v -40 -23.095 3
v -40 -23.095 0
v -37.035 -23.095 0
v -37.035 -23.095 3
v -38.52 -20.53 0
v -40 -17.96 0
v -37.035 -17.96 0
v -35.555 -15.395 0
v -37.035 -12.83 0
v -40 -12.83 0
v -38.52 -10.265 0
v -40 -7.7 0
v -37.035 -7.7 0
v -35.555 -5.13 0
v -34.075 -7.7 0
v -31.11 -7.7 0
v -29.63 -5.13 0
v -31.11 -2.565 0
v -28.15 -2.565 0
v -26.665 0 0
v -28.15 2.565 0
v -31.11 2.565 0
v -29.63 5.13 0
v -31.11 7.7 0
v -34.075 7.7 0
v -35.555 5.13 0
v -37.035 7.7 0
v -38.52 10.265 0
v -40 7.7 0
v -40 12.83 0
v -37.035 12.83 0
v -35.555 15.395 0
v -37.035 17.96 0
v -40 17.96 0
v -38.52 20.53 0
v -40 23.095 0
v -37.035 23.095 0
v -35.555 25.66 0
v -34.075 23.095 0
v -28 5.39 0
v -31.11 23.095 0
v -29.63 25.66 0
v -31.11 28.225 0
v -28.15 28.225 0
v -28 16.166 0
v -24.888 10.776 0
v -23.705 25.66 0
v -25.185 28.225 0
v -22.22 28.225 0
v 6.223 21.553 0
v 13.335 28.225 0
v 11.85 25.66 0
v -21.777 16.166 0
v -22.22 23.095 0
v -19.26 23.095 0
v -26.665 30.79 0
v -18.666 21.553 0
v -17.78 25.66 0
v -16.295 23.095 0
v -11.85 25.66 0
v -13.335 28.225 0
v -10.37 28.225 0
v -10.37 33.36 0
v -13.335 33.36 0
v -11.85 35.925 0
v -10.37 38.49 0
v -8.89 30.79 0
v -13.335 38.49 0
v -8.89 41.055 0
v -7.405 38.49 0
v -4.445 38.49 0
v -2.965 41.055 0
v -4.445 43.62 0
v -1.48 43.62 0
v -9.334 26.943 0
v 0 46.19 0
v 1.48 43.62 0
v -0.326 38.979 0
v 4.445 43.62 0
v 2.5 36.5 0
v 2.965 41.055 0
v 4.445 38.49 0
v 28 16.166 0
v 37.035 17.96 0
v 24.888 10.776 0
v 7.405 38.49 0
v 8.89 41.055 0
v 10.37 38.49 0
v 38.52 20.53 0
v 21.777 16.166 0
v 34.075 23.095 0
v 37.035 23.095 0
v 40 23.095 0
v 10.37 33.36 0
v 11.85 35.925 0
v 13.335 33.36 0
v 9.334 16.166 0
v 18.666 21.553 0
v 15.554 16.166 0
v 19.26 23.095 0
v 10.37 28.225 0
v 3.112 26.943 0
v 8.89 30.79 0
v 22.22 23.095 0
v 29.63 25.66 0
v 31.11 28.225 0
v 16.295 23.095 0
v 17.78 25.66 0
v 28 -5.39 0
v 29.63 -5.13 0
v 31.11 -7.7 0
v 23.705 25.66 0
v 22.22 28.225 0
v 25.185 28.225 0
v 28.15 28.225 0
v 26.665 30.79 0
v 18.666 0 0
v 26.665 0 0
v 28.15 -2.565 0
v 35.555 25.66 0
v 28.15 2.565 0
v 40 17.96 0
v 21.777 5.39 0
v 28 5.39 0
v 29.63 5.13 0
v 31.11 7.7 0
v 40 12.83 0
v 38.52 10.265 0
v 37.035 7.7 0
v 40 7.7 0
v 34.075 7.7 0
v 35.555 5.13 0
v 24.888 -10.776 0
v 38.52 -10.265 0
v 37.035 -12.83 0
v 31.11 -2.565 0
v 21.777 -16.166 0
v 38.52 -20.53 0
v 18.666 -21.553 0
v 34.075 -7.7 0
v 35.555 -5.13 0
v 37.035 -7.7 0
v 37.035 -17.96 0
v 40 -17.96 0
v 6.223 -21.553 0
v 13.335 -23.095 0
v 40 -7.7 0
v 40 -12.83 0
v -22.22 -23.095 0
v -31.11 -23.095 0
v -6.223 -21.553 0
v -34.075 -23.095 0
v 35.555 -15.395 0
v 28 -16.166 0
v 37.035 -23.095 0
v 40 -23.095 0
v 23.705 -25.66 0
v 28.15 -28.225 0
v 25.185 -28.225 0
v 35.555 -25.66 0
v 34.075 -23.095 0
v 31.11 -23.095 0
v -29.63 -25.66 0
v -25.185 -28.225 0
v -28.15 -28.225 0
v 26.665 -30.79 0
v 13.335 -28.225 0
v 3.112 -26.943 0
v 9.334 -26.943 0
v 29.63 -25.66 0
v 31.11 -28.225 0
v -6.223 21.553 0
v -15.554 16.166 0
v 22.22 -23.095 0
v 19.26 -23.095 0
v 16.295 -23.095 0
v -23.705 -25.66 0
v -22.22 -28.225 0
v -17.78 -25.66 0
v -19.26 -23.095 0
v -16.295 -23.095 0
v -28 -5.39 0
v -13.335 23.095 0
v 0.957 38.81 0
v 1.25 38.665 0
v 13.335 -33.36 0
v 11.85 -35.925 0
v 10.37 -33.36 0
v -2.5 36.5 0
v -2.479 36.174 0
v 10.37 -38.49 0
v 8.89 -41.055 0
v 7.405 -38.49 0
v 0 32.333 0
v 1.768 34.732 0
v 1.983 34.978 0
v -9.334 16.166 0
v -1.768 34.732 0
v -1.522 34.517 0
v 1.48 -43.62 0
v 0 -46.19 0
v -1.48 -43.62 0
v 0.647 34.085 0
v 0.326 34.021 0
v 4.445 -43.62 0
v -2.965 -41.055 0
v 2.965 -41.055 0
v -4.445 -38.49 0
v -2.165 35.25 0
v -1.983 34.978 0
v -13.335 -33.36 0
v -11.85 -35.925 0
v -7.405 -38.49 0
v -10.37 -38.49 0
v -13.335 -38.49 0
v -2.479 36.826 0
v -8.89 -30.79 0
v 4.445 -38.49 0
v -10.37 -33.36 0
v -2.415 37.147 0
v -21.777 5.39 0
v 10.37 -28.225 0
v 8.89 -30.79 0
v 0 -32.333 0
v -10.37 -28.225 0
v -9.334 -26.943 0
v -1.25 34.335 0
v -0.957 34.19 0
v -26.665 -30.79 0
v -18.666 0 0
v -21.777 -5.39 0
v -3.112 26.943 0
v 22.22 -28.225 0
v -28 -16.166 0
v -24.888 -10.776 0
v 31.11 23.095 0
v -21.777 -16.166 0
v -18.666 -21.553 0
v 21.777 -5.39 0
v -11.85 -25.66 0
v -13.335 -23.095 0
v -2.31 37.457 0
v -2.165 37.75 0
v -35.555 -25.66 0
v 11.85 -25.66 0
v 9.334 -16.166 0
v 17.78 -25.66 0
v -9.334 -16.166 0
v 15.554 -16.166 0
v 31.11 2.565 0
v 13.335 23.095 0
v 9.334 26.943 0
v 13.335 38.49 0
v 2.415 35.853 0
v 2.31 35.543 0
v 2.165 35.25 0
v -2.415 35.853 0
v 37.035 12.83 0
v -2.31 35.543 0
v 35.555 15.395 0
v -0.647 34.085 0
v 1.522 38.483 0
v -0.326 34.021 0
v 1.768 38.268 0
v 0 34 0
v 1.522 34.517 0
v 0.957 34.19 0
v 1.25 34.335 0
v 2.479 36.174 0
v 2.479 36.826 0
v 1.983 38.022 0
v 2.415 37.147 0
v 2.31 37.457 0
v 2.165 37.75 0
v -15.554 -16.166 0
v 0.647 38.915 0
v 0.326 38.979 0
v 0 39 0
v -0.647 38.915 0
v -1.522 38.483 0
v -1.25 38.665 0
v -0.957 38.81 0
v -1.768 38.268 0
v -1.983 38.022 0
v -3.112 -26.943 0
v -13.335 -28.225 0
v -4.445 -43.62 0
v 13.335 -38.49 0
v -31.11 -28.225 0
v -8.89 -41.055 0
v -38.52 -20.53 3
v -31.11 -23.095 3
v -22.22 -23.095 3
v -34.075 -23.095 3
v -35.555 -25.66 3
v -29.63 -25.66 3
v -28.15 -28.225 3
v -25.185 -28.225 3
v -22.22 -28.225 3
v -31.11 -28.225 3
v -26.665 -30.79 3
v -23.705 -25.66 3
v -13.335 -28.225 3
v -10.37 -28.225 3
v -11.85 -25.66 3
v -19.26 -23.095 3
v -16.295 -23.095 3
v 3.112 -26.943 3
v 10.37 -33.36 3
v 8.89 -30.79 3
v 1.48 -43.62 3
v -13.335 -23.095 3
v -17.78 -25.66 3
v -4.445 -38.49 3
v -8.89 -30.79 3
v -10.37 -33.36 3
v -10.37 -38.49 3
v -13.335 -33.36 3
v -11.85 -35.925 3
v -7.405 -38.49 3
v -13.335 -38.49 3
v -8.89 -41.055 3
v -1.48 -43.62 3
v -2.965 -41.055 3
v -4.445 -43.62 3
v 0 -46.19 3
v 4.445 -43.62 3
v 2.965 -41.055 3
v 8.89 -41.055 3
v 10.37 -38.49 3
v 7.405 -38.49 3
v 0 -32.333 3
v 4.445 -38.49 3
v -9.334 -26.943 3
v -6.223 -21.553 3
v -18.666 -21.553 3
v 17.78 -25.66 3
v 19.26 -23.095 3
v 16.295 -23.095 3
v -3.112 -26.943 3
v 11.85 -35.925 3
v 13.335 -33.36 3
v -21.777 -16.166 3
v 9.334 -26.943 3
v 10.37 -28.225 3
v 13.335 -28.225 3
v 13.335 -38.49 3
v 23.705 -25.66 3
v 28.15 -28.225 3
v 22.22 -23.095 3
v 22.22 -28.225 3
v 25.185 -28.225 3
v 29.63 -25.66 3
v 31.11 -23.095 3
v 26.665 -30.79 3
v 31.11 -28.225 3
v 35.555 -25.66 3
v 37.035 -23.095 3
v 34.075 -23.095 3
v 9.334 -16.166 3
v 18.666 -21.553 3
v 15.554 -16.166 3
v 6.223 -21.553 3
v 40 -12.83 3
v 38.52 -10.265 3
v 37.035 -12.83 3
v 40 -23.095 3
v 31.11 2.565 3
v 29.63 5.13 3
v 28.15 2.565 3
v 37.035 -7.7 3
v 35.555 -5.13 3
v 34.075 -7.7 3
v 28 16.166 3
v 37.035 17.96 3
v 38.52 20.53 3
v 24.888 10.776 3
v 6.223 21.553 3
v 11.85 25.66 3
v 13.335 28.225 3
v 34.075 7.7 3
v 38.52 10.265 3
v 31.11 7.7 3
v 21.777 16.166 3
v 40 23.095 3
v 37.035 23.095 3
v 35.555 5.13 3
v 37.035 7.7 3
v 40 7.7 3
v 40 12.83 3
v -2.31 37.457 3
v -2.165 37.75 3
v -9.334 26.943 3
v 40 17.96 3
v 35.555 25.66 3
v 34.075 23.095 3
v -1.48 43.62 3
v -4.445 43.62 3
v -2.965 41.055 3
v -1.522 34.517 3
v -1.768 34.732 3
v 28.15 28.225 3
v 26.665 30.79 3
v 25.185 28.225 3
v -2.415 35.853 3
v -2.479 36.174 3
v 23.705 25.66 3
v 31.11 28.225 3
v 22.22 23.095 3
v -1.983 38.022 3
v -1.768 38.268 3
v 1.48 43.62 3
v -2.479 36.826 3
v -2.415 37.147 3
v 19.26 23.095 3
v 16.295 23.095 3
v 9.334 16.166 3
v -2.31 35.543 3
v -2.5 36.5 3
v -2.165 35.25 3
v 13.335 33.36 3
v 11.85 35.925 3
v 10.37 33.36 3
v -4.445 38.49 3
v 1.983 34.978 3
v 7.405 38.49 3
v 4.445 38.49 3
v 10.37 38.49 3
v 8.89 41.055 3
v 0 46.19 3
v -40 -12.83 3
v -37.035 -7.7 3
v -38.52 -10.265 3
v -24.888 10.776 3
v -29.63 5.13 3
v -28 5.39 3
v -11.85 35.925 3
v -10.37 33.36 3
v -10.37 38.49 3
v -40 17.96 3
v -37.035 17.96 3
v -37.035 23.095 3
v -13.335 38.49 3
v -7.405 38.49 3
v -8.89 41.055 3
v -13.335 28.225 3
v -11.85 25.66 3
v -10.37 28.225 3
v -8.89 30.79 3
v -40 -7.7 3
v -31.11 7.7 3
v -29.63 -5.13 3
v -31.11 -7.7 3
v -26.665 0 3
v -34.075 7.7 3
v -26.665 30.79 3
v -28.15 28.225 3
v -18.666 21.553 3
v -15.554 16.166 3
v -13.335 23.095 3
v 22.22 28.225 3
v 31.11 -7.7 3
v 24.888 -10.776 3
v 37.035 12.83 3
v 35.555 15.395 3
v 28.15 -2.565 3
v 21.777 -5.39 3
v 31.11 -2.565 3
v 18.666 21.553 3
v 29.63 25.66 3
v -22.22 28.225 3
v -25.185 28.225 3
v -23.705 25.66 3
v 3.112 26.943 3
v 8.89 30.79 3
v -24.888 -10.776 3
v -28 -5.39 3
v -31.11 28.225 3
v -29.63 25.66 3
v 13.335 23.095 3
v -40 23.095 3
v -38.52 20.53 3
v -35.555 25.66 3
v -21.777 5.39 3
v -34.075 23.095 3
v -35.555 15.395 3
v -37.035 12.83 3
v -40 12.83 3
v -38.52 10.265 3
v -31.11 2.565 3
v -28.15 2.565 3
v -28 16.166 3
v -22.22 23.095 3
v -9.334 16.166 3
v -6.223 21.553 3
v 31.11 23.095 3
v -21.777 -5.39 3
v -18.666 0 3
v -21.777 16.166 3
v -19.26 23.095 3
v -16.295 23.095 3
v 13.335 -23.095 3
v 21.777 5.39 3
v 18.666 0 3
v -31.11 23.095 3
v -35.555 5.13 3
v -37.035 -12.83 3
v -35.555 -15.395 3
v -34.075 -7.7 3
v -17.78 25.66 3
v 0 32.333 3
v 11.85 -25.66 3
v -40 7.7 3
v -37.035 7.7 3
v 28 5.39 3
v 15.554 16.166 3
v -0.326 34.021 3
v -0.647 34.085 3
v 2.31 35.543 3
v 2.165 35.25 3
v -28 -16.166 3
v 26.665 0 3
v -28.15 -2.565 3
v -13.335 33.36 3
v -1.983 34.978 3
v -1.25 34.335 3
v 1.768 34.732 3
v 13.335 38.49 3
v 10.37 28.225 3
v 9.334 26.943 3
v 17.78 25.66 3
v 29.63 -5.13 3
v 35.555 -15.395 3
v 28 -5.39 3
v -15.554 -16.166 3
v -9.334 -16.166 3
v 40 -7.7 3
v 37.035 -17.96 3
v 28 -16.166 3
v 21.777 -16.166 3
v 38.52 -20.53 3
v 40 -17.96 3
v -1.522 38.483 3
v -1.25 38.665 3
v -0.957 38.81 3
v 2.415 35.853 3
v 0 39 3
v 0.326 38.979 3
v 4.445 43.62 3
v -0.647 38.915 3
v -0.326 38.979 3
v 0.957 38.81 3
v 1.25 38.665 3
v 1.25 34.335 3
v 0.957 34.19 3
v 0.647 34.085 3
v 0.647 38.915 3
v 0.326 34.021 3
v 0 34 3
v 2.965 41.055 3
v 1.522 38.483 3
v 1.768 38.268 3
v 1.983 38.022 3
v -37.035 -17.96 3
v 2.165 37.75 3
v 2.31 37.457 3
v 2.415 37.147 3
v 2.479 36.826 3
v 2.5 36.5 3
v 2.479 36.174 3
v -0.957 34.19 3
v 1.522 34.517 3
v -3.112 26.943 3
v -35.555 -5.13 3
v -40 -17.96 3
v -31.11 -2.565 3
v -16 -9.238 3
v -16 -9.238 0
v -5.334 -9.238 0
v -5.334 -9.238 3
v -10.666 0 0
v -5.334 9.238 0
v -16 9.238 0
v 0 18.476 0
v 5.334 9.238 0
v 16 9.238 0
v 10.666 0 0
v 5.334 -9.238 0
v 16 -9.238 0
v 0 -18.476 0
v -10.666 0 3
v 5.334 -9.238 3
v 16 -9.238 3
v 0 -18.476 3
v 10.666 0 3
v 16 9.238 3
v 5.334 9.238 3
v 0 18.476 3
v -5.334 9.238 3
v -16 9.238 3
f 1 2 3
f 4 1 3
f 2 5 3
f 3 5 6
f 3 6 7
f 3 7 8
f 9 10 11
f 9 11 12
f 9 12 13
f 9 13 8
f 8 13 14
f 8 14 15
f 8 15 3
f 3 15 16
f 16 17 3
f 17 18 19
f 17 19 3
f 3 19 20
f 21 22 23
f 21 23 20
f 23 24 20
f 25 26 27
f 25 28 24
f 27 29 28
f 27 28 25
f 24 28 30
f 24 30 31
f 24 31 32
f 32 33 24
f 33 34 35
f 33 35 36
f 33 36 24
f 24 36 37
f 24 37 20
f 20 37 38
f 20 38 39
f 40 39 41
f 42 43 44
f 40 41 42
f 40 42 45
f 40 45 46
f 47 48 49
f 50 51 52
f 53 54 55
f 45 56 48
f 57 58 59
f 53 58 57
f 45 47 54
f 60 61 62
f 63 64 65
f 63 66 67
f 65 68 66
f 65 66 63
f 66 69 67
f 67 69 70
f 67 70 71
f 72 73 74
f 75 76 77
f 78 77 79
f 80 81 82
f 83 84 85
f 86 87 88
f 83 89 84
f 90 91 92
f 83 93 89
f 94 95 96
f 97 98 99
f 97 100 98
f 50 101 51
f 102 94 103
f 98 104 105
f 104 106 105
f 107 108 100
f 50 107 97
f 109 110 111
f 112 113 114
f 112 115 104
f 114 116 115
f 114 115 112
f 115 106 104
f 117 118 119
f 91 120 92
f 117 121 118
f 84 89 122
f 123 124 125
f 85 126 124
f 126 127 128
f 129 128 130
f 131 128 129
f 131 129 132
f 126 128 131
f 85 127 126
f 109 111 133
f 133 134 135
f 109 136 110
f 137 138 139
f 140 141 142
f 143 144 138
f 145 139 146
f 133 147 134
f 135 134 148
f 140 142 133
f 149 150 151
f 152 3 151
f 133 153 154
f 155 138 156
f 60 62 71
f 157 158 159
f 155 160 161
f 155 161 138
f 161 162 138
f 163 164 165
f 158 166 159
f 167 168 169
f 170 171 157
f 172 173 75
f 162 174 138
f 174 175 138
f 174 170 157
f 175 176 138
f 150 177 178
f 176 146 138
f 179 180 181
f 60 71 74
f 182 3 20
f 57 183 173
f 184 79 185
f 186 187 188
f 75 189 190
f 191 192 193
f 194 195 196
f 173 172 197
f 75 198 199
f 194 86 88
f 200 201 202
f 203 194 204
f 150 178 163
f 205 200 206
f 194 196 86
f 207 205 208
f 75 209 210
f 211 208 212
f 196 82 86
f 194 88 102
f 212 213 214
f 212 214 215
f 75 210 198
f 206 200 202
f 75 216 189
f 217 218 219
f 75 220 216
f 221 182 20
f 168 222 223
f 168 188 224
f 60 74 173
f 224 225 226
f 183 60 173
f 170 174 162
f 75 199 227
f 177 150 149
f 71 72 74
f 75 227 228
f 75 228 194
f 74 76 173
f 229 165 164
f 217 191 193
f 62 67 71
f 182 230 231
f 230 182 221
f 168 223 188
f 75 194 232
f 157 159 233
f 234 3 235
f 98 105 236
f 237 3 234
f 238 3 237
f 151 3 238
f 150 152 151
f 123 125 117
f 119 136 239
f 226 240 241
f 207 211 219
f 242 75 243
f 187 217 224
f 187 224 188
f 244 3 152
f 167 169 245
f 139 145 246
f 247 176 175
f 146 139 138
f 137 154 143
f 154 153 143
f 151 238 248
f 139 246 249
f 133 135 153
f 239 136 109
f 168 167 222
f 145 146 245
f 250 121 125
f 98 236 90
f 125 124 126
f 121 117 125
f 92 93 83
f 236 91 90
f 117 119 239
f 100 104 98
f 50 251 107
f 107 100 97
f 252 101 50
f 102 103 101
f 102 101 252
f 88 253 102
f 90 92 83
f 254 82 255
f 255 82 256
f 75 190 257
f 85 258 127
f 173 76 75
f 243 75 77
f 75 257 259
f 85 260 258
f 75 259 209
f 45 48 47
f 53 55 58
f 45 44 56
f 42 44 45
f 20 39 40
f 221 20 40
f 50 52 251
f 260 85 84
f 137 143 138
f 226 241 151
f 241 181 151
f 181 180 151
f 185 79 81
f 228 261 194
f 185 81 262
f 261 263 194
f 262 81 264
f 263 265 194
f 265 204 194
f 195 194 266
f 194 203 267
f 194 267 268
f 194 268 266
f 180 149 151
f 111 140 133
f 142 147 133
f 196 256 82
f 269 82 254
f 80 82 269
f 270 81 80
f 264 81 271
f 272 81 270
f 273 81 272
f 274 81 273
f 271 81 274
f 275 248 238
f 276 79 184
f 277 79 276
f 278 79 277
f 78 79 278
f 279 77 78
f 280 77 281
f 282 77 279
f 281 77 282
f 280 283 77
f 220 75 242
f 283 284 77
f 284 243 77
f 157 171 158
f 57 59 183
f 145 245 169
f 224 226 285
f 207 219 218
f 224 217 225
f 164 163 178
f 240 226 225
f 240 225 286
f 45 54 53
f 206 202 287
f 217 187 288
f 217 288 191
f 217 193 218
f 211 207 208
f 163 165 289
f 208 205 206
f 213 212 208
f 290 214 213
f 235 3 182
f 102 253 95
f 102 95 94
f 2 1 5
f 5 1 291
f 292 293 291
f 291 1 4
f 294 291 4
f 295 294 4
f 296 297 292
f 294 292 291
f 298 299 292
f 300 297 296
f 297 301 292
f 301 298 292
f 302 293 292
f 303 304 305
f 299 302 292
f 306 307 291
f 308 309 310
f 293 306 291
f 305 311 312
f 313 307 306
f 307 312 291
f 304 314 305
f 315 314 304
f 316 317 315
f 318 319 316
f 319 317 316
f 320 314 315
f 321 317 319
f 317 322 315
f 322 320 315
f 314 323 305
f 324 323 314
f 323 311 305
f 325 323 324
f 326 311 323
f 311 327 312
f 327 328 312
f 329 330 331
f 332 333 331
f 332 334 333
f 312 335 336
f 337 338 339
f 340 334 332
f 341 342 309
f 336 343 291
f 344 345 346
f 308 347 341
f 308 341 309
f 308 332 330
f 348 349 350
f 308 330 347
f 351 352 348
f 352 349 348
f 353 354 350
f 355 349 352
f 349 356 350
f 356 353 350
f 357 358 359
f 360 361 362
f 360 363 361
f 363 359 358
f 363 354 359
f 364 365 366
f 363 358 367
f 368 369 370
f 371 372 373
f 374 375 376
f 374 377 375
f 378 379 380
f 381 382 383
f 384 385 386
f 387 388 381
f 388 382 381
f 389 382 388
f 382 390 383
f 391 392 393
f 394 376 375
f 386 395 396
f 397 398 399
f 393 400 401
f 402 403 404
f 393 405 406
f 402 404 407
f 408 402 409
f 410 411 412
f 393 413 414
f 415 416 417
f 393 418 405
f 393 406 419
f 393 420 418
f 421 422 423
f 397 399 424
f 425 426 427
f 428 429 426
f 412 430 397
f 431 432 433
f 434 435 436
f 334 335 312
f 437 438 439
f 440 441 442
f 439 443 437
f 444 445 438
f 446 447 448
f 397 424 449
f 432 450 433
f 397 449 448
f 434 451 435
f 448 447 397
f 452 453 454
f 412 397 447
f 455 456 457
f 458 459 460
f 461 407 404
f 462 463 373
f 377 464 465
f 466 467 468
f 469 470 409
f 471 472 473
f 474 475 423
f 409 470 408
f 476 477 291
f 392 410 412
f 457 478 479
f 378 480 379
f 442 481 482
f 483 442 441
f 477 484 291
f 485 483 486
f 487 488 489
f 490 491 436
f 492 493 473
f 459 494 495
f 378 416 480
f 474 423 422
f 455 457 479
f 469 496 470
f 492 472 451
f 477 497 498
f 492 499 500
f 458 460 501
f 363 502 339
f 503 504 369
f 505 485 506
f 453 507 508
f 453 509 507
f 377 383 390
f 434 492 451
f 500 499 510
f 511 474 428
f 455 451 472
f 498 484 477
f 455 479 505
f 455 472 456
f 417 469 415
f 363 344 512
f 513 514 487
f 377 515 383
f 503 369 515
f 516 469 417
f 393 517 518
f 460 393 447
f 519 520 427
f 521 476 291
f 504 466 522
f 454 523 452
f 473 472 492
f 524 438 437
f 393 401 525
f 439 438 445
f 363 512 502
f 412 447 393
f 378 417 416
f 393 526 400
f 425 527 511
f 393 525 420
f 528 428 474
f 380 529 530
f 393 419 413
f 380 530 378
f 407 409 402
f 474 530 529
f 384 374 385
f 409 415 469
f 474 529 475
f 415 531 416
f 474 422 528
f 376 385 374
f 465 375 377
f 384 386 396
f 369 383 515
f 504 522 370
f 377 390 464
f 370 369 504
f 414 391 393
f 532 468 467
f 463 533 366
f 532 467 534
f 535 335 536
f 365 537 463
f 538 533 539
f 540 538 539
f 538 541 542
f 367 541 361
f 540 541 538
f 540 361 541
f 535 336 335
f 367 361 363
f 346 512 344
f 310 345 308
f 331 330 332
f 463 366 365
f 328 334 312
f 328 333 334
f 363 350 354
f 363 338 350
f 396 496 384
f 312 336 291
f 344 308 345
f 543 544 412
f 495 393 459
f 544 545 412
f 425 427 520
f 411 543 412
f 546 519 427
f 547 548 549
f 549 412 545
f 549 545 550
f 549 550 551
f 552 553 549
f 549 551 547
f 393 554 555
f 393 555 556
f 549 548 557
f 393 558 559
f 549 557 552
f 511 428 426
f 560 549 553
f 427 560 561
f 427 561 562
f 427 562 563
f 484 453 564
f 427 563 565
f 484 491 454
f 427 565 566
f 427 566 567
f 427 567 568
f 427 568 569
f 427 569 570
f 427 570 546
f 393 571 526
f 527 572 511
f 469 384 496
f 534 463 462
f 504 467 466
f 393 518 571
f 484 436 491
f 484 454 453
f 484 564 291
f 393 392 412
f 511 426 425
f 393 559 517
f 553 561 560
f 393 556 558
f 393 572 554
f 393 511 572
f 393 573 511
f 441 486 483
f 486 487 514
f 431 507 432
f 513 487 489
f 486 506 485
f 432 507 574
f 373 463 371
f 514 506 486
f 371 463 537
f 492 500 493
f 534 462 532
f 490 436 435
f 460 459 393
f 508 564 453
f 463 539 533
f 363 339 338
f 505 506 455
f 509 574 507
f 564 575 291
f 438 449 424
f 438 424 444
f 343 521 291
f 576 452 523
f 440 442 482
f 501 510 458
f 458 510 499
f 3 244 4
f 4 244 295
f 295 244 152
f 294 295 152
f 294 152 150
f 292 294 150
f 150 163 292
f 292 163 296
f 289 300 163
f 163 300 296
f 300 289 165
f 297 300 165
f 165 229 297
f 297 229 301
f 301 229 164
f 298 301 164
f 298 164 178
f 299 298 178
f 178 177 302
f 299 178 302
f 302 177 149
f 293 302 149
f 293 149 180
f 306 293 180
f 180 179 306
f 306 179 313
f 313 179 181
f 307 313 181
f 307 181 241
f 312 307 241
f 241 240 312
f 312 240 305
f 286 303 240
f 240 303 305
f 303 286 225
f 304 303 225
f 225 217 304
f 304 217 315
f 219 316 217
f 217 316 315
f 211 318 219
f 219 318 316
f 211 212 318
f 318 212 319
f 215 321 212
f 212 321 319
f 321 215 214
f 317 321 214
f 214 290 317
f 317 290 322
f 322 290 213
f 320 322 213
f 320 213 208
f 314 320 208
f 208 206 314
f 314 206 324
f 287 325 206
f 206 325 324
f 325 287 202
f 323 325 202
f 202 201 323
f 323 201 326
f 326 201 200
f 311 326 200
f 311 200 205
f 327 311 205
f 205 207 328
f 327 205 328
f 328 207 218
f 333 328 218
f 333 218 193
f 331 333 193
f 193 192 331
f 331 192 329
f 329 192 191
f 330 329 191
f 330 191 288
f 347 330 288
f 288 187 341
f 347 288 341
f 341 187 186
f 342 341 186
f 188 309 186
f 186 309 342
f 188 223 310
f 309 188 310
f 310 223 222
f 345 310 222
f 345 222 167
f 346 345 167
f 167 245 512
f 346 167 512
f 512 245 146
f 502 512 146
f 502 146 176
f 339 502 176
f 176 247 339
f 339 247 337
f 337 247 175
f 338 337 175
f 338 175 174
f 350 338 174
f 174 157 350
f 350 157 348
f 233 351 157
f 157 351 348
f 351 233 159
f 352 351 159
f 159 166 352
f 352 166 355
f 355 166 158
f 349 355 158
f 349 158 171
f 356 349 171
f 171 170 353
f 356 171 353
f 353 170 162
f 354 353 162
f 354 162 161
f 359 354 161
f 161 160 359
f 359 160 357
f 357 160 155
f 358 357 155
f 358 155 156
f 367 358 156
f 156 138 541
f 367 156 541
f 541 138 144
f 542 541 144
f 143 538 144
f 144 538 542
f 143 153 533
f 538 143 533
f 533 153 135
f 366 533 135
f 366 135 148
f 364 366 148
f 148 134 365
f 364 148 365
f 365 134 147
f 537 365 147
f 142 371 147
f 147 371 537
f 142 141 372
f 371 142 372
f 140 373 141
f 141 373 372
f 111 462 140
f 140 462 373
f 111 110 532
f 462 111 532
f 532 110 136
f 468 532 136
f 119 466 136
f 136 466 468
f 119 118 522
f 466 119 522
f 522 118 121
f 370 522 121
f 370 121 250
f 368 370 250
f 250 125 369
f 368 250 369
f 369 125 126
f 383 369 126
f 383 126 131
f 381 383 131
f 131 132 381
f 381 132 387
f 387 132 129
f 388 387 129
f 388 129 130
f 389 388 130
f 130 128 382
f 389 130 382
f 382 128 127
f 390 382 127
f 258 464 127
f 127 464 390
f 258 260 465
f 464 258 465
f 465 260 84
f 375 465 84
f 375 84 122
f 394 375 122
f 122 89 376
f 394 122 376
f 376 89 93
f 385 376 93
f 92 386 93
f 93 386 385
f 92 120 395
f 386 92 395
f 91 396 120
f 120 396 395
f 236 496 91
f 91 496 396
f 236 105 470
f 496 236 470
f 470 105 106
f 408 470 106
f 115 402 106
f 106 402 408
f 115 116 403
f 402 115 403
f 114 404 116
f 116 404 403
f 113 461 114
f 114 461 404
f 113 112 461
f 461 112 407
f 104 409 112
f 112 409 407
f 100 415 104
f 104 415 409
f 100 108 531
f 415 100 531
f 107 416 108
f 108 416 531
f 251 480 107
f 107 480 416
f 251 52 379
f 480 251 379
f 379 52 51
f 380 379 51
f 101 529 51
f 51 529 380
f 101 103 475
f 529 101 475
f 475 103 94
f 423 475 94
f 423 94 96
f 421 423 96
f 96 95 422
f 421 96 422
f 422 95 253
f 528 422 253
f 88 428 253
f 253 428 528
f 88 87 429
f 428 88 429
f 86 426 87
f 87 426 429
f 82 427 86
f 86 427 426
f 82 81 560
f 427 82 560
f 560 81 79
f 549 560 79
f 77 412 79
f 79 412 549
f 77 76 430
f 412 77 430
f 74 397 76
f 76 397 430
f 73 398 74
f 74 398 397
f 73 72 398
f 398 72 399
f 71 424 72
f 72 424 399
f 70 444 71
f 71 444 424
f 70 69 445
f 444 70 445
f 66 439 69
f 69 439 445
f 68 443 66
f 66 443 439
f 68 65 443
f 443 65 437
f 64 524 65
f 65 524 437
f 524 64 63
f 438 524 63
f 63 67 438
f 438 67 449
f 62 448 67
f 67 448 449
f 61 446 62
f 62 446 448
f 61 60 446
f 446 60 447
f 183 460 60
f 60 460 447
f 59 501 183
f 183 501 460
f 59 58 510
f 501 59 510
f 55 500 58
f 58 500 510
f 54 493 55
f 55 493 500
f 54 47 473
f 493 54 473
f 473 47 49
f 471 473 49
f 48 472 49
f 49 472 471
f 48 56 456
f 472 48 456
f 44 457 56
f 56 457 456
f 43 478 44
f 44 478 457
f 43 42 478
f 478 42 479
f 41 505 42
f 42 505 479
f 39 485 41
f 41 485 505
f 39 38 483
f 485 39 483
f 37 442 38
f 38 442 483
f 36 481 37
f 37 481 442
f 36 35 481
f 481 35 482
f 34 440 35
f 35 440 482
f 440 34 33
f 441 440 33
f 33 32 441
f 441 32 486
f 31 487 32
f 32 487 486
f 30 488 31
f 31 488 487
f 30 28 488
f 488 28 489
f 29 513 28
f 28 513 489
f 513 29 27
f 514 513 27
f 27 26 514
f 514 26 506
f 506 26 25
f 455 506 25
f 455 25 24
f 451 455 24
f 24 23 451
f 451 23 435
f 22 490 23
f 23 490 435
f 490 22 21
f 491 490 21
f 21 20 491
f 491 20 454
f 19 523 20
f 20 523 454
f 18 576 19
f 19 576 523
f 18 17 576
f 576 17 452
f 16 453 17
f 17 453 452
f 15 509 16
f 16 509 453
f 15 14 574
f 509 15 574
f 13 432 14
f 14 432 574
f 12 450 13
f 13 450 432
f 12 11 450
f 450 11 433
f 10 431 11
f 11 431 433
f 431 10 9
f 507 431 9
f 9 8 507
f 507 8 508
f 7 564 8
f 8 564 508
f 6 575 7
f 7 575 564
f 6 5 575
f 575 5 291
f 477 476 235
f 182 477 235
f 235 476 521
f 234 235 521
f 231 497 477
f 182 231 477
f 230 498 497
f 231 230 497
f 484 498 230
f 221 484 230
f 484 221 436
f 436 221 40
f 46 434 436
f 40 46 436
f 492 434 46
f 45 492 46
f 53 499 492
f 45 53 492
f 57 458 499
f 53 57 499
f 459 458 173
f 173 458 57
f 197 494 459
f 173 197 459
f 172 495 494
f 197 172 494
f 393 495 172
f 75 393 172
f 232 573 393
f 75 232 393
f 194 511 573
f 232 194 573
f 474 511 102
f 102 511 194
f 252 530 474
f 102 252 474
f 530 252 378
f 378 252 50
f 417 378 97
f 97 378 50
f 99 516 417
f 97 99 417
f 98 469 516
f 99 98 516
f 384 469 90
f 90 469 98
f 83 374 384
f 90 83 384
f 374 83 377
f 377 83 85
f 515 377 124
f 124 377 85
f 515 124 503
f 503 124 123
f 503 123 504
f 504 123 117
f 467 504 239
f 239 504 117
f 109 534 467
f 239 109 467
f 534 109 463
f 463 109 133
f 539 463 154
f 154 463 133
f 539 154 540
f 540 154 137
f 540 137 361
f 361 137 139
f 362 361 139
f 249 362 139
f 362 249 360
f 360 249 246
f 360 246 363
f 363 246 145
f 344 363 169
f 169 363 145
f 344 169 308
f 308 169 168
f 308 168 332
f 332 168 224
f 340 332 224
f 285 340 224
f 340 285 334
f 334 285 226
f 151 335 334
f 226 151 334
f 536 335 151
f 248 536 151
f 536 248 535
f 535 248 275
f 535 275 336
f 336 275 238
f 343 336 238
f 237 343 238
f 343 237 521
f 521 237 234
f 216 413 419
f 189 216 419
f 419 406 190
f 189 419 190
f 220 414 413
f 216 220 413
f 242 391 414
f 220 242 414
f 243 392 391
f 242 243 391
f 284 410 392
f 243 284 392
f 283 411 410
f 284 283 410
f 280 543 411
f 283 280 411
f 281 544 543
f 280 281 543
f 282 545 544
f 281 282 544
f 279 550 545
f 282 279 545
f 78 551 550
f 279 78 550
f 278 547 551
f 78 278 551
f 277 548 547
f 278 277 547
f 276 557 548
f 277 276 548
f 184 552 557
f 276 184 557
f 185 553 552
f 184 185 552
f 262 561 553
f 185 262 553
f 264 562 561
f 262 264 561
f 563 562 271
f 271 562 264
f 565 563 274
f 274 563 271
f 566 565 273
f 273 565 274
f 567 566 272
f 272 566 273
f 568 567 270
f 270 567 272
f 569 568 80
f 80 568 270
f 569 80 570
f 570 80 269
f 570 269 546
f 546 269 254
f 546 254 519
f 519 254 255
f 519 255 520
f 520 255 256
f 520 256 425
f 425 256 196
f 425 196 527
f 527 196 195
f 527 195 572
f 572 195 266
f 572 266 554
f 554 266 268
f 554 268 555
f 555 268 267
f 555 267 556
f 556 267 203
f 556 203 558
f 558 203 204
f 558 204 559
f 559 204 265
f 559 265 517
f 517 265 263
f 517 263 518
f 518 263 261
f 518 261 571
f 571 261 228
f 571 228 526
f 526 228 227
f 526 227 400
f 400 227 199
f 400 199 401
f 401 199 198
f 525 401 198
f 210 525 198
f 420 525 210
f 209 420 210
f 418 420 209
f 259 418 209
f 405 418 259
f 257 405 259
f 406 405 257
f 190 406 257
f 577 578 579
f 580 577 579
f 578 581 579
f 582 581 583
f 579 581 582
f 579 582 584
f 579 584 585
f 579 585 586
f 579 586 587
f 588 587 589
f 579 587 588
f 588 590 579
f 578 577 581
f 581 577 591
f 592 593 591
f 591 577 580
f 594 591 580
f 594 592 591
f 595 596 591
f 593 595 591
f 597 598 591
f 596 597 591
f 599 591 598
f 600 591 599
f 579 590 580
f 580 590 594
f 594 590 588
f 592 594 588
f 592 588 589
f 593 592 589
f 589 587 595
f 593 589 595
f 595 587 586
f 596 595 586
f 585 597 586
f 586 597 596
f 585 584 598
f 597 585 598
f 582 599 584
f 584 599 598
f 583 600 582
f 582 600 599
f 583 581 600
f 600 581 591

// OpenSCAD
scale([.5,.5,1])
union()
{

difference()
{
koch_three_snowflake(10,3);
translate([0,0,-1])
koch_two_snowflake(7,5);

translate([0,73,-2])
cylinder(r=5,h=8,$fn=48);
}



koch_one_snowflake(4,3);


}



module koch_one_snowflake(sc,ht)
{
scale ([sc,sc,1])
linear_extrude(height=ht)
polygon
       (points = [
          [ 8.00000,-4.61880],[ 2.66667,-4.61880],[ 2.66667,-4.61880],[ 0.00000,-9.23760],[ 0.00000,-9.23760],
          [-2.66667,-4.61880],[-2.66667,-4.61880],[-8.00000,-4.61880],[-8.00000,-4.61880],[-5.33333, 0.00000],
          [-5.33333, 0.00000],[-8.00000, 4.61880],[-8.00000, 4.61880],[-2.66667, 4.61880],[-2.66667, 4.61880],
          [ 0.00000, 9.23760],[ 0.00000, 9.23760],[ 2.66667, 4.61880],[ 2.66667, 4.61880],[ 8.00000, 4.61880],
          [ 8.00000, 4.61880],[ 5.33333, 0.00000],[ 5.33333, 0.00000],[ 8.00000,-4.61880],
                ]
      );
}


module koch_two_snowflake(sc,ht)
{
 scale([sc,sc,1])
 linear_extrude(height=ht)
polygon
       (points = [
          [ 8.00000,-4.61880],[ 6.22222,-4.61880],[ 6.22222,-4.61880],[ 5.33333,-6.15840],[ 5.33333,-6.15840],
          [ 4.44444,-4.61880],[ 4.44444,-4.61880],[ 2.66667,-4.61880],[ 2.66667,-4.61880],[ 1.77778,-6.15840],
          [ 1.77778,-6.15840],[ 2.66667,-7.69800],[ 2.66667,-7.69800],[ 0.88889,-7.69800],[ 0.88889,-7.69800],
          [-0.00000,-9.23760],[-0.00000,-9.23760],[-0.88889,-7.69800],[-0.88889,-7.69800],[-2.66667,-7.69800],
          [-2.66667,-7.69800],[-1.77778,-6.15840],[-1.77778,-6.15840],[-2.66667,-4.61880],[-2.66667,-4.61880],
          [-4.44444,-4.61880],[-4.44444,-4.61880],[-5.33333,-6.15840],[-5.33333,-6.15840],[-6.22222,-4.61880],
          [-6.22222,-4.61880],[-8.00000,-4.61880],[-8.00000,-4.61880],[-7.11111,-3.07920],[-7.11111,-3.07920],
          [-8.00000,-1.53960],[-8.00000,-1.53960],[-6.22222,-1.53960],[-6.22222,-1.53960],[-5.33333,-0.00000],
          [-5.33333,-0.00000],[-6.22222, 1.53960],[-6.22222, 1.53960],[-8.00000, 1.53960],[-8.00000, 1.53960],
          [-7.11111, 3.07920],[-7.11111, 3.07920],[-8.00000, 4.61880],[-8.00000, 4.61880],[-6.22222, 4.61880],
          [-6.22222, 4.61880],[-5.33333, 6.15840],[-5.33333, 6.15840],[-4.44444, 4.61880],[-4.44444, 4.61880],
          [-2.66667, 4.61880],[-2.66667, 4.61880],[-1.77778, 6.15840],[-1.77778, 6.15840],[-2.66667, 7.69800],
          [-2.66667, 7.69800],[-0.88889, 7.69800],[-0.88889, 7.69800],[-0.00000, 9.23760],[-0.00000, 9.23760],
          [ 0.88889, 7.69800],[ 0.88889, 7.69800],[ 2.66667, 7.69800],[ 2.66667, 7.69800],[ 1.77778, 6.15840],
          [ 1.77778, 6.15840],[ 2.66667, 4.61880],[ 2.66667, 4.61880],[ 4.44444, 4.61880],[ 4.44444, 4.61880],
          [ 5.33333, 6.15840],[ 5.33333, 6.15840],[ 6.22222, 4.61880],[ 6.22222, 4.61880],[ 8.00000, 4.61880],
          [ 8.00000, 4.61880],[ 7.11111, 3.07920],[ 7.11111, 3.07920],[ 8.00000, 1.53960],[ 8.00000, 1.53960],
          [ 6.22222, 1.53960],[ 6.22222, 1.53960],[ 5.33333,-0.00000],[ 5.33333,-0.00000],[ 6.22222,-1.53960],
          [ 6.22222,-1.53960],[ 8.00000,-1.53960],[ 8.00000,-1.53960],[ 7.11111,-3.07920],[ 7.11111,-3.07920],
          [ 8.00000,-4.61880],
                ]
      );
}





  module koch_three_snowflake(sc,ht)
{
 scale ([sc,sc,1])
 linear_extrude(height=ht)

polygon
       (points = [
          [ 8.00000,-4.61880],[ 7.40741,-4.61880],[ 7.40741,-4.61880],[ 7.11111,-5.13200],[ 7.11111,-5.13200],
          [ 6.81482,-4.61880],[ 6.81482,-4.61880],[ 6.22222,-4.61880],[ 6.22222,-4.61880],[ 5.92593,-5.13200],
          [ 5.92593,-5.13200],[ 6.22222,-5.64520],[ 6.22222,-5.64520],[ 5.62963,-5.64520],[ 5.62963,-5.64520],
          [ 5.33333,-6.15840],[ 5.33333,-6.15840],[ 5.03704,-5.64520],[ 5.03704,-5.64520],[ 4.44444,-5.64520],
          [ 4.44444,-5.64520],[ 4.74074,-5.13200],[ 4.74074,-5.13200],[ 4.44444,-4.61880],[ 4.44444,-4.61880],
          [ 3.85185,-4.61880],[ 3.85185,-4.61880],[ 3.55556,-5.13200],[ 3.55556,-5.13200],[ 3.25926,-4.61880],
          [ 3.25926,-4.61880],[ 2.66667,-4.61880],[ 2.66667,-4.61880],[ 2.37037,-5.13200],[ 2.37037,-5.13200],
          [ 2.66667,-5.64520],[ 2.66667,-5.64520],[ 2.07407,-5.64520],[ 2.07407,-5.64520],[ 1.77778,-6.15840],
          [ 1.77778,-6.15840],[ 2.07407,-6.67160],[ 2.07407,-6.67160],[ 2.66667,-6.67160],[ 2.66667,-6.67160],
          [ 2.37037,-7.18480],[ 2.37037,-7.18480],[ 2.66667,-7.69800],[ 2.66667,-7.69800],[ 2.07407,-7.69800],
          [ 2.07407,-7.69800],[ 1.77778,-8.21120],[ 1.77778,-8.21120],[ 1.48148,-7.69800],[ 1.48148,-7.69800],
          [ 0.88889,-7.69800],[ 0.88889,-7.69800],[ 0.59259,-8.21120],[ 0.59259,-8.21120],[ 0.88889,-8.72440],
          [ 0.88889,-8.72440],[ 0.29630,-8.72440],[ 0.29630,-8.72440],[ 0.00000,-9.23760],[ 0.00000,-9.23760],
          [-0.29630,-8.72440],[-0.29630,-8.72440],[-0.88889,-8.72440],[-0.88889,-8.72440],[-0.59259,-8.21120],
          [-0.59259,-8.21120],[-0.88889,-7.69800],[-0.88889,-7.69800],[-1.48148,-7.69800],[-1.48148,-7.69800],
          [-1.77778,-8.21120],[-1.77778,-8.21120],[-2.07407,-7.69800],[-2.07407,-7.69800],[-2.66667,-7.69800],
          [-2.66667,-7.69800],[-2.37037,-7.18480],[-2.37037,-7.18480],[-2.66667,-6.67160],[-2.66667,-6.67160],
          [-2.07407,-6.67160],[-2.07407,-6.67160],[-1.77778,-6.15840],[-1.77778,-6.15840],[-2.07407,-5.64520],
          [-2.07407,-5.64520],[-2.66667,-5.64520],[-2.66667,-5.64520],[-2.37037,-5.13200],[-2.37037,-5.13200],
          [-2.66667,-4.61880],[-2.66667,-4.61880],[-3.25926,-4.61880],[-3.25926,-4.61880],[-3.55556,-5.13200],
          [-3.55556,-5.13200],[-3.85185,-4.61880],[-3.85185,-4.61880],[-4.44444,-4.61880],[-4.44444,-4.61880],
          [-4.74074,-5.13200],[-4.74074,-5.13200],[-4.44444,-5.64520],[-4.44444,-5.64520],[-5.03704,-5.64520],
          [-5.03704,-5.64520],[-5.33333,-6.15840],[-5.33333,-6.15840],[-5.62963,-5.64520],[-5.62963,-5.64520],
          [-6.22222,-5.64520],[-6.22222,-5.64520],[-5.92593,-5.13200],[-5.92593,-5.13200],[-6.22222,-4.61880],
          [-6.22222,-4.61880],[-6.81482,-4.61880],[-6.81482,-4.61880],[-7.11111,-5.13200],[-7.11111,-5.13200],
          [-7.40741,-4.61880],[-7.40741,-4.61880],[-8.00000,-4.61880],[-8.00000,-4.61880],[-7.70370,-4.10560],
          [-7.70370,-4.10560],[-8.00000,-3.59240],[-8.00000,-3.59240],[-7.40741,-3.59240],[-7.40741,-3.59240],
          [-7.11111,-3.07920],[-7.11111,-3.07920],[-7.40741,-2.56600],[-7.40741,-2.56600],[-8.00000,-2.56600],
          [-8.00000,-2.56600],[-7.70370,-2.05280],[-7.70370,-2.05280],[-8.00000,-1.53960],[-8.00000,-1.53960],
          [-7.40741,-1.53960],[-7.40741,-1.53960],[-7.11111,-1.02640],[-7.11111,-1.02640],[-6.81482,-1.53960],
          [-6.81482,-1.53960],[-6.22222,-1.53960],[-6.22222,-1.53960],[-5.92593,-1.02640],[-5.92593,-1.02640],
          [-6.22222,-0.51320],[-6.22222,-0.51320],[-5.62963,-0.51320],[-5.62963,-0.51320],[-5.33333,-0.00000],
          [-5.33333,-0.00000],[-5.62963, 0.51320],[-5.62963, 0.51320],[-6.22222, 0.51320],[-6.22222, 0.51320],
          [-5.92593, 1.02640],[-5.92593, 1.02640],[-6.22222, 1.53960],[-6.22222, 1.53960],[-6.81482, 1.53960],
          [-6.81482, 1.53960],[-7.11111, 1.02640],[-7.11111, 1.02640],[-7.40741, 1.53960],[-7.40741, 1.53960],
          [-8.00000, 1.53960],[-8.00000, 1.53960],[-7.70370, 2.05280],[-7.70370, 2.05280],[-8.00000, 2.56600],
          [-8.00000, 2.56600],[-7.40741, 2.56600],[-7.40741, 2.56600],[-7.11111, 3.07920],[-7.11111, 3.07920],
          [-7.40741, 3.59240],[-7.40741, 3.59240],[-8.00000, 3.59240],[-8.00000, 3.59240],[-7.70370, 4.10560],
          [-7.70370, 4.10560],[-8.00000, 4.61880],[-8.00000, 4.61880],[-7.40741, 4.61880],[-7.40741, 4.61880],
          [-7.11111, 5.13200],[-7.11111, 5.13200],[-6.81482, 4.61880],[-6.81482, 4.61880],[-6.22222, 4.61880],
          [-6.22222, 4.61880],[-5.92593, 5.13200],[-5.92593, 5.13200],[-6.22222, 5.64520],[-6.22222, 5.64520],
          [-5.62963, 5.64520],[-5.62963, 5.64520],[-5.33333, 6.15840],[-5.33333, 6.15840],[-5.03704, 5.64520],
          [-5.03704, 5.64520],[-4.44445, 5.64520],[-4.44445, 5.64520],[-4.74074, 5.13200],[-4.74074, 5.13200],
          [-4.44444, 4.61880],[-4.44444, 4.61880],[-3.85185, 4.61880],[-3.85185, 4.61880],[-3.55556, 5.13200],
          [-3.55556, 5.13200],[-3.25926, 4.61880],[-3.25926, 4.61880],[-2.66667, 4.61880],[-2.66667, 4.61880],
          [-2.37037, 5.13200],[-2.37037, 5.13200],[-2.66667, 5.64520],[-2.66667, 5.64520],[-2.07407, 5.64520],
          [-2.07407, 5.64520],[-1.77778, 6.15840],[-1.77778, 6.15840],[-2.07407, 6.67160],[-2.07407, 6.67160],
          [-2.66667, 6.67160],[-2.66667, 6.67160],[-2.37037, 7.18480],[-2.37037, 7.18480],[-2.66667, 7.69800],
          [-2.66667, 7.69800],[-2.07407, 7.69800],[-2.07407, 7.69800],[-1.77778, 8.21120],[-1.77778, 8.21120],
          [-1.48148, 7.69800],[-1.48148, 7.69800],[-0.88889, 7.69800],[-0.88889, 7.69800],[-0.59259, 8.21120],
          [-0.59259, 8.21120],[-0.88889, 8.72440],[-0.88889, 8.72440],[-0.29630, 8.72440],[-0.29630, 8.72440],
          [ 0.00000, 9.23760],[ 0.00000, 9.23760],[ 0.29630, 8.72440],[ 0.29630, 8.72440],[ 0.88889, 8.72440],
          [ 0.88889, 8.72440],[ 0.59259, 8.21120],[ 0.59259, 8.21120],[ 0.88889, 7.69800],[ 0.88889, 7.69800],
          [ 1.48148, 7.69800],[ 1.48148, 7.69800],[ 1.77778, 8.21120],[ 1.77778, 8.21120],[ 2.07407, 7.69800],
          [ 2.07407, 7.69800],[ 2.66667, 7.69800],[ 2.66667, 7.69800],[ 2.37037, 7.18480],[ 2.37037, 7.18480],
          [ 2.66667, 6.67160],[ 2.66667, 6.67160],[ 2.07407, 6.67160],[ 2.07407, 6.67160],[ 1.77778, 6.15840],
          [ 1.77778, 6.15840],[ 2.07407, 5.64520],[ 2.07407, 5.64520],[ 2.66667, 5.64520],[ 2.66667, 5.64520],
          [ 2.37037, 5.13200],[ 2.37037, 5.13200],[ 2.66667, 4.61880],[ 2.66667, 4.61880],[ 3.25926, 4.61880],
          [ 3.25926, 4.61880],[ 3.55556, 5.13200],[ 3.55556, 5.13200],[ 3.85185, 4.61880],[ 3.85185, 4.61880],
          [ 4.44444, 4.61880],[ 4.44444, 4.61880],[ 4.74074, 5.13200],[ 4.74074, 5.13200],[ 4.44444, 5.64520],
          [ 4.44444, 5.64520],[ 5.03704, 5.64520],[ 5.03704, 5.64520],[ 5.33333, 6.15840],[ 5.33333, 6.15840],
          [ 5.62963, 5.64520],[ 5.62963, 5.64520],[ 6.22222, 5.64520],[ 6.22222, 5.64520],[ 5.92593, 5.13200],
          [ 5.92593, 5.13200],[ 6.22222, 4.61880],[ 6.22222, 4.61880],[ 6.81481, 4.61880],[ 6.81481, 4.61880],
          [ 7.11111, 5.13200],[ 7.11111, 5.13200],[ 7.40741, 4.61880],[ 7.40741, 4.61880],[ 8.00000, 4.61880],
          [ 8.00000, 4.61880],[ 7.70370, 4.10560],[ 7.70370, 4.10560],[ 8.00000, 3.59240],[ 8.00000, 3.59240],
          [ 7.40741, 3.59240],[ 7.40741, 3.59240],[ 7.11111, 3.07920],[ 7.11111, 3.07920],[ 7.40741, 2.56600],
          [ 7.40741, 2.56600],[ 8.00000, 2.56600],[ 8.00000, 2.56600],[ 7.70370, 2.05280],[ 7.70370, 2.05280],
          [ 8.00000, 1.53960],[ 8.00000, 1.53960],[ 7.40741, 1.53960],[ 7.40741, 1.53960],[ 7.11111, 1.02640],
          [ 7.11111, 1.02640],[ 6.81481, 1.53960],[ 6.81481, 1.53960],[ 6.22222, 1.53960],[ 6.22222, 1.53960],
          [ 5.92593, 1.02640],[ 5.92593, 1.02640],[ 6.22222, 0.51320],[ 6.22222, 0.51320],[ 5.62963, 0.51320],
          [ 5.62963, 0.51320],[ 5.33333,-0.00000],[ 5.33333,-0.00000],[ 5.62963,-0.51320],[ 5.62963,-0.51320],
          [ 6.22222,-0.51320],[ 6.22222,-0.51320],[ 5.92593,-1.02640],[ 5.92593,-1.02640],[ 6.22222,-1.53960],
          [ 6.22222,-1.53960],[ 6.81482,-1.53960],[ 6.81482,-1.53960],[ 7.11111,-1.02640],[ 7.11111,-1.02640],
          [ 7.40741,-1.53960],[ 7.40741,-1.53960],[ 8.00000,-1.53960],[ 8.00000,-1.53960],[ 7.70370,-2.05280],
          [ 7.70370,-2.05280],[ 8.00000,-2.56600],[ 8.00000,-2.56600],[ 7.40741,-2.56600],[ 7.40741,-2.56600],
          [ 7.11111,-3.07920],[ 7.11111,-3.07920],[ 7.40741,-3.59240],[ 7.40741,-3.59240],[ 8.00000,-3.59240],
          [ 8.00000,-3.59240],[ 7.70370,-4.10560],[ 7.70370,-4.10560],[ 8.00000,-4.61880],
                ]
      );
}
